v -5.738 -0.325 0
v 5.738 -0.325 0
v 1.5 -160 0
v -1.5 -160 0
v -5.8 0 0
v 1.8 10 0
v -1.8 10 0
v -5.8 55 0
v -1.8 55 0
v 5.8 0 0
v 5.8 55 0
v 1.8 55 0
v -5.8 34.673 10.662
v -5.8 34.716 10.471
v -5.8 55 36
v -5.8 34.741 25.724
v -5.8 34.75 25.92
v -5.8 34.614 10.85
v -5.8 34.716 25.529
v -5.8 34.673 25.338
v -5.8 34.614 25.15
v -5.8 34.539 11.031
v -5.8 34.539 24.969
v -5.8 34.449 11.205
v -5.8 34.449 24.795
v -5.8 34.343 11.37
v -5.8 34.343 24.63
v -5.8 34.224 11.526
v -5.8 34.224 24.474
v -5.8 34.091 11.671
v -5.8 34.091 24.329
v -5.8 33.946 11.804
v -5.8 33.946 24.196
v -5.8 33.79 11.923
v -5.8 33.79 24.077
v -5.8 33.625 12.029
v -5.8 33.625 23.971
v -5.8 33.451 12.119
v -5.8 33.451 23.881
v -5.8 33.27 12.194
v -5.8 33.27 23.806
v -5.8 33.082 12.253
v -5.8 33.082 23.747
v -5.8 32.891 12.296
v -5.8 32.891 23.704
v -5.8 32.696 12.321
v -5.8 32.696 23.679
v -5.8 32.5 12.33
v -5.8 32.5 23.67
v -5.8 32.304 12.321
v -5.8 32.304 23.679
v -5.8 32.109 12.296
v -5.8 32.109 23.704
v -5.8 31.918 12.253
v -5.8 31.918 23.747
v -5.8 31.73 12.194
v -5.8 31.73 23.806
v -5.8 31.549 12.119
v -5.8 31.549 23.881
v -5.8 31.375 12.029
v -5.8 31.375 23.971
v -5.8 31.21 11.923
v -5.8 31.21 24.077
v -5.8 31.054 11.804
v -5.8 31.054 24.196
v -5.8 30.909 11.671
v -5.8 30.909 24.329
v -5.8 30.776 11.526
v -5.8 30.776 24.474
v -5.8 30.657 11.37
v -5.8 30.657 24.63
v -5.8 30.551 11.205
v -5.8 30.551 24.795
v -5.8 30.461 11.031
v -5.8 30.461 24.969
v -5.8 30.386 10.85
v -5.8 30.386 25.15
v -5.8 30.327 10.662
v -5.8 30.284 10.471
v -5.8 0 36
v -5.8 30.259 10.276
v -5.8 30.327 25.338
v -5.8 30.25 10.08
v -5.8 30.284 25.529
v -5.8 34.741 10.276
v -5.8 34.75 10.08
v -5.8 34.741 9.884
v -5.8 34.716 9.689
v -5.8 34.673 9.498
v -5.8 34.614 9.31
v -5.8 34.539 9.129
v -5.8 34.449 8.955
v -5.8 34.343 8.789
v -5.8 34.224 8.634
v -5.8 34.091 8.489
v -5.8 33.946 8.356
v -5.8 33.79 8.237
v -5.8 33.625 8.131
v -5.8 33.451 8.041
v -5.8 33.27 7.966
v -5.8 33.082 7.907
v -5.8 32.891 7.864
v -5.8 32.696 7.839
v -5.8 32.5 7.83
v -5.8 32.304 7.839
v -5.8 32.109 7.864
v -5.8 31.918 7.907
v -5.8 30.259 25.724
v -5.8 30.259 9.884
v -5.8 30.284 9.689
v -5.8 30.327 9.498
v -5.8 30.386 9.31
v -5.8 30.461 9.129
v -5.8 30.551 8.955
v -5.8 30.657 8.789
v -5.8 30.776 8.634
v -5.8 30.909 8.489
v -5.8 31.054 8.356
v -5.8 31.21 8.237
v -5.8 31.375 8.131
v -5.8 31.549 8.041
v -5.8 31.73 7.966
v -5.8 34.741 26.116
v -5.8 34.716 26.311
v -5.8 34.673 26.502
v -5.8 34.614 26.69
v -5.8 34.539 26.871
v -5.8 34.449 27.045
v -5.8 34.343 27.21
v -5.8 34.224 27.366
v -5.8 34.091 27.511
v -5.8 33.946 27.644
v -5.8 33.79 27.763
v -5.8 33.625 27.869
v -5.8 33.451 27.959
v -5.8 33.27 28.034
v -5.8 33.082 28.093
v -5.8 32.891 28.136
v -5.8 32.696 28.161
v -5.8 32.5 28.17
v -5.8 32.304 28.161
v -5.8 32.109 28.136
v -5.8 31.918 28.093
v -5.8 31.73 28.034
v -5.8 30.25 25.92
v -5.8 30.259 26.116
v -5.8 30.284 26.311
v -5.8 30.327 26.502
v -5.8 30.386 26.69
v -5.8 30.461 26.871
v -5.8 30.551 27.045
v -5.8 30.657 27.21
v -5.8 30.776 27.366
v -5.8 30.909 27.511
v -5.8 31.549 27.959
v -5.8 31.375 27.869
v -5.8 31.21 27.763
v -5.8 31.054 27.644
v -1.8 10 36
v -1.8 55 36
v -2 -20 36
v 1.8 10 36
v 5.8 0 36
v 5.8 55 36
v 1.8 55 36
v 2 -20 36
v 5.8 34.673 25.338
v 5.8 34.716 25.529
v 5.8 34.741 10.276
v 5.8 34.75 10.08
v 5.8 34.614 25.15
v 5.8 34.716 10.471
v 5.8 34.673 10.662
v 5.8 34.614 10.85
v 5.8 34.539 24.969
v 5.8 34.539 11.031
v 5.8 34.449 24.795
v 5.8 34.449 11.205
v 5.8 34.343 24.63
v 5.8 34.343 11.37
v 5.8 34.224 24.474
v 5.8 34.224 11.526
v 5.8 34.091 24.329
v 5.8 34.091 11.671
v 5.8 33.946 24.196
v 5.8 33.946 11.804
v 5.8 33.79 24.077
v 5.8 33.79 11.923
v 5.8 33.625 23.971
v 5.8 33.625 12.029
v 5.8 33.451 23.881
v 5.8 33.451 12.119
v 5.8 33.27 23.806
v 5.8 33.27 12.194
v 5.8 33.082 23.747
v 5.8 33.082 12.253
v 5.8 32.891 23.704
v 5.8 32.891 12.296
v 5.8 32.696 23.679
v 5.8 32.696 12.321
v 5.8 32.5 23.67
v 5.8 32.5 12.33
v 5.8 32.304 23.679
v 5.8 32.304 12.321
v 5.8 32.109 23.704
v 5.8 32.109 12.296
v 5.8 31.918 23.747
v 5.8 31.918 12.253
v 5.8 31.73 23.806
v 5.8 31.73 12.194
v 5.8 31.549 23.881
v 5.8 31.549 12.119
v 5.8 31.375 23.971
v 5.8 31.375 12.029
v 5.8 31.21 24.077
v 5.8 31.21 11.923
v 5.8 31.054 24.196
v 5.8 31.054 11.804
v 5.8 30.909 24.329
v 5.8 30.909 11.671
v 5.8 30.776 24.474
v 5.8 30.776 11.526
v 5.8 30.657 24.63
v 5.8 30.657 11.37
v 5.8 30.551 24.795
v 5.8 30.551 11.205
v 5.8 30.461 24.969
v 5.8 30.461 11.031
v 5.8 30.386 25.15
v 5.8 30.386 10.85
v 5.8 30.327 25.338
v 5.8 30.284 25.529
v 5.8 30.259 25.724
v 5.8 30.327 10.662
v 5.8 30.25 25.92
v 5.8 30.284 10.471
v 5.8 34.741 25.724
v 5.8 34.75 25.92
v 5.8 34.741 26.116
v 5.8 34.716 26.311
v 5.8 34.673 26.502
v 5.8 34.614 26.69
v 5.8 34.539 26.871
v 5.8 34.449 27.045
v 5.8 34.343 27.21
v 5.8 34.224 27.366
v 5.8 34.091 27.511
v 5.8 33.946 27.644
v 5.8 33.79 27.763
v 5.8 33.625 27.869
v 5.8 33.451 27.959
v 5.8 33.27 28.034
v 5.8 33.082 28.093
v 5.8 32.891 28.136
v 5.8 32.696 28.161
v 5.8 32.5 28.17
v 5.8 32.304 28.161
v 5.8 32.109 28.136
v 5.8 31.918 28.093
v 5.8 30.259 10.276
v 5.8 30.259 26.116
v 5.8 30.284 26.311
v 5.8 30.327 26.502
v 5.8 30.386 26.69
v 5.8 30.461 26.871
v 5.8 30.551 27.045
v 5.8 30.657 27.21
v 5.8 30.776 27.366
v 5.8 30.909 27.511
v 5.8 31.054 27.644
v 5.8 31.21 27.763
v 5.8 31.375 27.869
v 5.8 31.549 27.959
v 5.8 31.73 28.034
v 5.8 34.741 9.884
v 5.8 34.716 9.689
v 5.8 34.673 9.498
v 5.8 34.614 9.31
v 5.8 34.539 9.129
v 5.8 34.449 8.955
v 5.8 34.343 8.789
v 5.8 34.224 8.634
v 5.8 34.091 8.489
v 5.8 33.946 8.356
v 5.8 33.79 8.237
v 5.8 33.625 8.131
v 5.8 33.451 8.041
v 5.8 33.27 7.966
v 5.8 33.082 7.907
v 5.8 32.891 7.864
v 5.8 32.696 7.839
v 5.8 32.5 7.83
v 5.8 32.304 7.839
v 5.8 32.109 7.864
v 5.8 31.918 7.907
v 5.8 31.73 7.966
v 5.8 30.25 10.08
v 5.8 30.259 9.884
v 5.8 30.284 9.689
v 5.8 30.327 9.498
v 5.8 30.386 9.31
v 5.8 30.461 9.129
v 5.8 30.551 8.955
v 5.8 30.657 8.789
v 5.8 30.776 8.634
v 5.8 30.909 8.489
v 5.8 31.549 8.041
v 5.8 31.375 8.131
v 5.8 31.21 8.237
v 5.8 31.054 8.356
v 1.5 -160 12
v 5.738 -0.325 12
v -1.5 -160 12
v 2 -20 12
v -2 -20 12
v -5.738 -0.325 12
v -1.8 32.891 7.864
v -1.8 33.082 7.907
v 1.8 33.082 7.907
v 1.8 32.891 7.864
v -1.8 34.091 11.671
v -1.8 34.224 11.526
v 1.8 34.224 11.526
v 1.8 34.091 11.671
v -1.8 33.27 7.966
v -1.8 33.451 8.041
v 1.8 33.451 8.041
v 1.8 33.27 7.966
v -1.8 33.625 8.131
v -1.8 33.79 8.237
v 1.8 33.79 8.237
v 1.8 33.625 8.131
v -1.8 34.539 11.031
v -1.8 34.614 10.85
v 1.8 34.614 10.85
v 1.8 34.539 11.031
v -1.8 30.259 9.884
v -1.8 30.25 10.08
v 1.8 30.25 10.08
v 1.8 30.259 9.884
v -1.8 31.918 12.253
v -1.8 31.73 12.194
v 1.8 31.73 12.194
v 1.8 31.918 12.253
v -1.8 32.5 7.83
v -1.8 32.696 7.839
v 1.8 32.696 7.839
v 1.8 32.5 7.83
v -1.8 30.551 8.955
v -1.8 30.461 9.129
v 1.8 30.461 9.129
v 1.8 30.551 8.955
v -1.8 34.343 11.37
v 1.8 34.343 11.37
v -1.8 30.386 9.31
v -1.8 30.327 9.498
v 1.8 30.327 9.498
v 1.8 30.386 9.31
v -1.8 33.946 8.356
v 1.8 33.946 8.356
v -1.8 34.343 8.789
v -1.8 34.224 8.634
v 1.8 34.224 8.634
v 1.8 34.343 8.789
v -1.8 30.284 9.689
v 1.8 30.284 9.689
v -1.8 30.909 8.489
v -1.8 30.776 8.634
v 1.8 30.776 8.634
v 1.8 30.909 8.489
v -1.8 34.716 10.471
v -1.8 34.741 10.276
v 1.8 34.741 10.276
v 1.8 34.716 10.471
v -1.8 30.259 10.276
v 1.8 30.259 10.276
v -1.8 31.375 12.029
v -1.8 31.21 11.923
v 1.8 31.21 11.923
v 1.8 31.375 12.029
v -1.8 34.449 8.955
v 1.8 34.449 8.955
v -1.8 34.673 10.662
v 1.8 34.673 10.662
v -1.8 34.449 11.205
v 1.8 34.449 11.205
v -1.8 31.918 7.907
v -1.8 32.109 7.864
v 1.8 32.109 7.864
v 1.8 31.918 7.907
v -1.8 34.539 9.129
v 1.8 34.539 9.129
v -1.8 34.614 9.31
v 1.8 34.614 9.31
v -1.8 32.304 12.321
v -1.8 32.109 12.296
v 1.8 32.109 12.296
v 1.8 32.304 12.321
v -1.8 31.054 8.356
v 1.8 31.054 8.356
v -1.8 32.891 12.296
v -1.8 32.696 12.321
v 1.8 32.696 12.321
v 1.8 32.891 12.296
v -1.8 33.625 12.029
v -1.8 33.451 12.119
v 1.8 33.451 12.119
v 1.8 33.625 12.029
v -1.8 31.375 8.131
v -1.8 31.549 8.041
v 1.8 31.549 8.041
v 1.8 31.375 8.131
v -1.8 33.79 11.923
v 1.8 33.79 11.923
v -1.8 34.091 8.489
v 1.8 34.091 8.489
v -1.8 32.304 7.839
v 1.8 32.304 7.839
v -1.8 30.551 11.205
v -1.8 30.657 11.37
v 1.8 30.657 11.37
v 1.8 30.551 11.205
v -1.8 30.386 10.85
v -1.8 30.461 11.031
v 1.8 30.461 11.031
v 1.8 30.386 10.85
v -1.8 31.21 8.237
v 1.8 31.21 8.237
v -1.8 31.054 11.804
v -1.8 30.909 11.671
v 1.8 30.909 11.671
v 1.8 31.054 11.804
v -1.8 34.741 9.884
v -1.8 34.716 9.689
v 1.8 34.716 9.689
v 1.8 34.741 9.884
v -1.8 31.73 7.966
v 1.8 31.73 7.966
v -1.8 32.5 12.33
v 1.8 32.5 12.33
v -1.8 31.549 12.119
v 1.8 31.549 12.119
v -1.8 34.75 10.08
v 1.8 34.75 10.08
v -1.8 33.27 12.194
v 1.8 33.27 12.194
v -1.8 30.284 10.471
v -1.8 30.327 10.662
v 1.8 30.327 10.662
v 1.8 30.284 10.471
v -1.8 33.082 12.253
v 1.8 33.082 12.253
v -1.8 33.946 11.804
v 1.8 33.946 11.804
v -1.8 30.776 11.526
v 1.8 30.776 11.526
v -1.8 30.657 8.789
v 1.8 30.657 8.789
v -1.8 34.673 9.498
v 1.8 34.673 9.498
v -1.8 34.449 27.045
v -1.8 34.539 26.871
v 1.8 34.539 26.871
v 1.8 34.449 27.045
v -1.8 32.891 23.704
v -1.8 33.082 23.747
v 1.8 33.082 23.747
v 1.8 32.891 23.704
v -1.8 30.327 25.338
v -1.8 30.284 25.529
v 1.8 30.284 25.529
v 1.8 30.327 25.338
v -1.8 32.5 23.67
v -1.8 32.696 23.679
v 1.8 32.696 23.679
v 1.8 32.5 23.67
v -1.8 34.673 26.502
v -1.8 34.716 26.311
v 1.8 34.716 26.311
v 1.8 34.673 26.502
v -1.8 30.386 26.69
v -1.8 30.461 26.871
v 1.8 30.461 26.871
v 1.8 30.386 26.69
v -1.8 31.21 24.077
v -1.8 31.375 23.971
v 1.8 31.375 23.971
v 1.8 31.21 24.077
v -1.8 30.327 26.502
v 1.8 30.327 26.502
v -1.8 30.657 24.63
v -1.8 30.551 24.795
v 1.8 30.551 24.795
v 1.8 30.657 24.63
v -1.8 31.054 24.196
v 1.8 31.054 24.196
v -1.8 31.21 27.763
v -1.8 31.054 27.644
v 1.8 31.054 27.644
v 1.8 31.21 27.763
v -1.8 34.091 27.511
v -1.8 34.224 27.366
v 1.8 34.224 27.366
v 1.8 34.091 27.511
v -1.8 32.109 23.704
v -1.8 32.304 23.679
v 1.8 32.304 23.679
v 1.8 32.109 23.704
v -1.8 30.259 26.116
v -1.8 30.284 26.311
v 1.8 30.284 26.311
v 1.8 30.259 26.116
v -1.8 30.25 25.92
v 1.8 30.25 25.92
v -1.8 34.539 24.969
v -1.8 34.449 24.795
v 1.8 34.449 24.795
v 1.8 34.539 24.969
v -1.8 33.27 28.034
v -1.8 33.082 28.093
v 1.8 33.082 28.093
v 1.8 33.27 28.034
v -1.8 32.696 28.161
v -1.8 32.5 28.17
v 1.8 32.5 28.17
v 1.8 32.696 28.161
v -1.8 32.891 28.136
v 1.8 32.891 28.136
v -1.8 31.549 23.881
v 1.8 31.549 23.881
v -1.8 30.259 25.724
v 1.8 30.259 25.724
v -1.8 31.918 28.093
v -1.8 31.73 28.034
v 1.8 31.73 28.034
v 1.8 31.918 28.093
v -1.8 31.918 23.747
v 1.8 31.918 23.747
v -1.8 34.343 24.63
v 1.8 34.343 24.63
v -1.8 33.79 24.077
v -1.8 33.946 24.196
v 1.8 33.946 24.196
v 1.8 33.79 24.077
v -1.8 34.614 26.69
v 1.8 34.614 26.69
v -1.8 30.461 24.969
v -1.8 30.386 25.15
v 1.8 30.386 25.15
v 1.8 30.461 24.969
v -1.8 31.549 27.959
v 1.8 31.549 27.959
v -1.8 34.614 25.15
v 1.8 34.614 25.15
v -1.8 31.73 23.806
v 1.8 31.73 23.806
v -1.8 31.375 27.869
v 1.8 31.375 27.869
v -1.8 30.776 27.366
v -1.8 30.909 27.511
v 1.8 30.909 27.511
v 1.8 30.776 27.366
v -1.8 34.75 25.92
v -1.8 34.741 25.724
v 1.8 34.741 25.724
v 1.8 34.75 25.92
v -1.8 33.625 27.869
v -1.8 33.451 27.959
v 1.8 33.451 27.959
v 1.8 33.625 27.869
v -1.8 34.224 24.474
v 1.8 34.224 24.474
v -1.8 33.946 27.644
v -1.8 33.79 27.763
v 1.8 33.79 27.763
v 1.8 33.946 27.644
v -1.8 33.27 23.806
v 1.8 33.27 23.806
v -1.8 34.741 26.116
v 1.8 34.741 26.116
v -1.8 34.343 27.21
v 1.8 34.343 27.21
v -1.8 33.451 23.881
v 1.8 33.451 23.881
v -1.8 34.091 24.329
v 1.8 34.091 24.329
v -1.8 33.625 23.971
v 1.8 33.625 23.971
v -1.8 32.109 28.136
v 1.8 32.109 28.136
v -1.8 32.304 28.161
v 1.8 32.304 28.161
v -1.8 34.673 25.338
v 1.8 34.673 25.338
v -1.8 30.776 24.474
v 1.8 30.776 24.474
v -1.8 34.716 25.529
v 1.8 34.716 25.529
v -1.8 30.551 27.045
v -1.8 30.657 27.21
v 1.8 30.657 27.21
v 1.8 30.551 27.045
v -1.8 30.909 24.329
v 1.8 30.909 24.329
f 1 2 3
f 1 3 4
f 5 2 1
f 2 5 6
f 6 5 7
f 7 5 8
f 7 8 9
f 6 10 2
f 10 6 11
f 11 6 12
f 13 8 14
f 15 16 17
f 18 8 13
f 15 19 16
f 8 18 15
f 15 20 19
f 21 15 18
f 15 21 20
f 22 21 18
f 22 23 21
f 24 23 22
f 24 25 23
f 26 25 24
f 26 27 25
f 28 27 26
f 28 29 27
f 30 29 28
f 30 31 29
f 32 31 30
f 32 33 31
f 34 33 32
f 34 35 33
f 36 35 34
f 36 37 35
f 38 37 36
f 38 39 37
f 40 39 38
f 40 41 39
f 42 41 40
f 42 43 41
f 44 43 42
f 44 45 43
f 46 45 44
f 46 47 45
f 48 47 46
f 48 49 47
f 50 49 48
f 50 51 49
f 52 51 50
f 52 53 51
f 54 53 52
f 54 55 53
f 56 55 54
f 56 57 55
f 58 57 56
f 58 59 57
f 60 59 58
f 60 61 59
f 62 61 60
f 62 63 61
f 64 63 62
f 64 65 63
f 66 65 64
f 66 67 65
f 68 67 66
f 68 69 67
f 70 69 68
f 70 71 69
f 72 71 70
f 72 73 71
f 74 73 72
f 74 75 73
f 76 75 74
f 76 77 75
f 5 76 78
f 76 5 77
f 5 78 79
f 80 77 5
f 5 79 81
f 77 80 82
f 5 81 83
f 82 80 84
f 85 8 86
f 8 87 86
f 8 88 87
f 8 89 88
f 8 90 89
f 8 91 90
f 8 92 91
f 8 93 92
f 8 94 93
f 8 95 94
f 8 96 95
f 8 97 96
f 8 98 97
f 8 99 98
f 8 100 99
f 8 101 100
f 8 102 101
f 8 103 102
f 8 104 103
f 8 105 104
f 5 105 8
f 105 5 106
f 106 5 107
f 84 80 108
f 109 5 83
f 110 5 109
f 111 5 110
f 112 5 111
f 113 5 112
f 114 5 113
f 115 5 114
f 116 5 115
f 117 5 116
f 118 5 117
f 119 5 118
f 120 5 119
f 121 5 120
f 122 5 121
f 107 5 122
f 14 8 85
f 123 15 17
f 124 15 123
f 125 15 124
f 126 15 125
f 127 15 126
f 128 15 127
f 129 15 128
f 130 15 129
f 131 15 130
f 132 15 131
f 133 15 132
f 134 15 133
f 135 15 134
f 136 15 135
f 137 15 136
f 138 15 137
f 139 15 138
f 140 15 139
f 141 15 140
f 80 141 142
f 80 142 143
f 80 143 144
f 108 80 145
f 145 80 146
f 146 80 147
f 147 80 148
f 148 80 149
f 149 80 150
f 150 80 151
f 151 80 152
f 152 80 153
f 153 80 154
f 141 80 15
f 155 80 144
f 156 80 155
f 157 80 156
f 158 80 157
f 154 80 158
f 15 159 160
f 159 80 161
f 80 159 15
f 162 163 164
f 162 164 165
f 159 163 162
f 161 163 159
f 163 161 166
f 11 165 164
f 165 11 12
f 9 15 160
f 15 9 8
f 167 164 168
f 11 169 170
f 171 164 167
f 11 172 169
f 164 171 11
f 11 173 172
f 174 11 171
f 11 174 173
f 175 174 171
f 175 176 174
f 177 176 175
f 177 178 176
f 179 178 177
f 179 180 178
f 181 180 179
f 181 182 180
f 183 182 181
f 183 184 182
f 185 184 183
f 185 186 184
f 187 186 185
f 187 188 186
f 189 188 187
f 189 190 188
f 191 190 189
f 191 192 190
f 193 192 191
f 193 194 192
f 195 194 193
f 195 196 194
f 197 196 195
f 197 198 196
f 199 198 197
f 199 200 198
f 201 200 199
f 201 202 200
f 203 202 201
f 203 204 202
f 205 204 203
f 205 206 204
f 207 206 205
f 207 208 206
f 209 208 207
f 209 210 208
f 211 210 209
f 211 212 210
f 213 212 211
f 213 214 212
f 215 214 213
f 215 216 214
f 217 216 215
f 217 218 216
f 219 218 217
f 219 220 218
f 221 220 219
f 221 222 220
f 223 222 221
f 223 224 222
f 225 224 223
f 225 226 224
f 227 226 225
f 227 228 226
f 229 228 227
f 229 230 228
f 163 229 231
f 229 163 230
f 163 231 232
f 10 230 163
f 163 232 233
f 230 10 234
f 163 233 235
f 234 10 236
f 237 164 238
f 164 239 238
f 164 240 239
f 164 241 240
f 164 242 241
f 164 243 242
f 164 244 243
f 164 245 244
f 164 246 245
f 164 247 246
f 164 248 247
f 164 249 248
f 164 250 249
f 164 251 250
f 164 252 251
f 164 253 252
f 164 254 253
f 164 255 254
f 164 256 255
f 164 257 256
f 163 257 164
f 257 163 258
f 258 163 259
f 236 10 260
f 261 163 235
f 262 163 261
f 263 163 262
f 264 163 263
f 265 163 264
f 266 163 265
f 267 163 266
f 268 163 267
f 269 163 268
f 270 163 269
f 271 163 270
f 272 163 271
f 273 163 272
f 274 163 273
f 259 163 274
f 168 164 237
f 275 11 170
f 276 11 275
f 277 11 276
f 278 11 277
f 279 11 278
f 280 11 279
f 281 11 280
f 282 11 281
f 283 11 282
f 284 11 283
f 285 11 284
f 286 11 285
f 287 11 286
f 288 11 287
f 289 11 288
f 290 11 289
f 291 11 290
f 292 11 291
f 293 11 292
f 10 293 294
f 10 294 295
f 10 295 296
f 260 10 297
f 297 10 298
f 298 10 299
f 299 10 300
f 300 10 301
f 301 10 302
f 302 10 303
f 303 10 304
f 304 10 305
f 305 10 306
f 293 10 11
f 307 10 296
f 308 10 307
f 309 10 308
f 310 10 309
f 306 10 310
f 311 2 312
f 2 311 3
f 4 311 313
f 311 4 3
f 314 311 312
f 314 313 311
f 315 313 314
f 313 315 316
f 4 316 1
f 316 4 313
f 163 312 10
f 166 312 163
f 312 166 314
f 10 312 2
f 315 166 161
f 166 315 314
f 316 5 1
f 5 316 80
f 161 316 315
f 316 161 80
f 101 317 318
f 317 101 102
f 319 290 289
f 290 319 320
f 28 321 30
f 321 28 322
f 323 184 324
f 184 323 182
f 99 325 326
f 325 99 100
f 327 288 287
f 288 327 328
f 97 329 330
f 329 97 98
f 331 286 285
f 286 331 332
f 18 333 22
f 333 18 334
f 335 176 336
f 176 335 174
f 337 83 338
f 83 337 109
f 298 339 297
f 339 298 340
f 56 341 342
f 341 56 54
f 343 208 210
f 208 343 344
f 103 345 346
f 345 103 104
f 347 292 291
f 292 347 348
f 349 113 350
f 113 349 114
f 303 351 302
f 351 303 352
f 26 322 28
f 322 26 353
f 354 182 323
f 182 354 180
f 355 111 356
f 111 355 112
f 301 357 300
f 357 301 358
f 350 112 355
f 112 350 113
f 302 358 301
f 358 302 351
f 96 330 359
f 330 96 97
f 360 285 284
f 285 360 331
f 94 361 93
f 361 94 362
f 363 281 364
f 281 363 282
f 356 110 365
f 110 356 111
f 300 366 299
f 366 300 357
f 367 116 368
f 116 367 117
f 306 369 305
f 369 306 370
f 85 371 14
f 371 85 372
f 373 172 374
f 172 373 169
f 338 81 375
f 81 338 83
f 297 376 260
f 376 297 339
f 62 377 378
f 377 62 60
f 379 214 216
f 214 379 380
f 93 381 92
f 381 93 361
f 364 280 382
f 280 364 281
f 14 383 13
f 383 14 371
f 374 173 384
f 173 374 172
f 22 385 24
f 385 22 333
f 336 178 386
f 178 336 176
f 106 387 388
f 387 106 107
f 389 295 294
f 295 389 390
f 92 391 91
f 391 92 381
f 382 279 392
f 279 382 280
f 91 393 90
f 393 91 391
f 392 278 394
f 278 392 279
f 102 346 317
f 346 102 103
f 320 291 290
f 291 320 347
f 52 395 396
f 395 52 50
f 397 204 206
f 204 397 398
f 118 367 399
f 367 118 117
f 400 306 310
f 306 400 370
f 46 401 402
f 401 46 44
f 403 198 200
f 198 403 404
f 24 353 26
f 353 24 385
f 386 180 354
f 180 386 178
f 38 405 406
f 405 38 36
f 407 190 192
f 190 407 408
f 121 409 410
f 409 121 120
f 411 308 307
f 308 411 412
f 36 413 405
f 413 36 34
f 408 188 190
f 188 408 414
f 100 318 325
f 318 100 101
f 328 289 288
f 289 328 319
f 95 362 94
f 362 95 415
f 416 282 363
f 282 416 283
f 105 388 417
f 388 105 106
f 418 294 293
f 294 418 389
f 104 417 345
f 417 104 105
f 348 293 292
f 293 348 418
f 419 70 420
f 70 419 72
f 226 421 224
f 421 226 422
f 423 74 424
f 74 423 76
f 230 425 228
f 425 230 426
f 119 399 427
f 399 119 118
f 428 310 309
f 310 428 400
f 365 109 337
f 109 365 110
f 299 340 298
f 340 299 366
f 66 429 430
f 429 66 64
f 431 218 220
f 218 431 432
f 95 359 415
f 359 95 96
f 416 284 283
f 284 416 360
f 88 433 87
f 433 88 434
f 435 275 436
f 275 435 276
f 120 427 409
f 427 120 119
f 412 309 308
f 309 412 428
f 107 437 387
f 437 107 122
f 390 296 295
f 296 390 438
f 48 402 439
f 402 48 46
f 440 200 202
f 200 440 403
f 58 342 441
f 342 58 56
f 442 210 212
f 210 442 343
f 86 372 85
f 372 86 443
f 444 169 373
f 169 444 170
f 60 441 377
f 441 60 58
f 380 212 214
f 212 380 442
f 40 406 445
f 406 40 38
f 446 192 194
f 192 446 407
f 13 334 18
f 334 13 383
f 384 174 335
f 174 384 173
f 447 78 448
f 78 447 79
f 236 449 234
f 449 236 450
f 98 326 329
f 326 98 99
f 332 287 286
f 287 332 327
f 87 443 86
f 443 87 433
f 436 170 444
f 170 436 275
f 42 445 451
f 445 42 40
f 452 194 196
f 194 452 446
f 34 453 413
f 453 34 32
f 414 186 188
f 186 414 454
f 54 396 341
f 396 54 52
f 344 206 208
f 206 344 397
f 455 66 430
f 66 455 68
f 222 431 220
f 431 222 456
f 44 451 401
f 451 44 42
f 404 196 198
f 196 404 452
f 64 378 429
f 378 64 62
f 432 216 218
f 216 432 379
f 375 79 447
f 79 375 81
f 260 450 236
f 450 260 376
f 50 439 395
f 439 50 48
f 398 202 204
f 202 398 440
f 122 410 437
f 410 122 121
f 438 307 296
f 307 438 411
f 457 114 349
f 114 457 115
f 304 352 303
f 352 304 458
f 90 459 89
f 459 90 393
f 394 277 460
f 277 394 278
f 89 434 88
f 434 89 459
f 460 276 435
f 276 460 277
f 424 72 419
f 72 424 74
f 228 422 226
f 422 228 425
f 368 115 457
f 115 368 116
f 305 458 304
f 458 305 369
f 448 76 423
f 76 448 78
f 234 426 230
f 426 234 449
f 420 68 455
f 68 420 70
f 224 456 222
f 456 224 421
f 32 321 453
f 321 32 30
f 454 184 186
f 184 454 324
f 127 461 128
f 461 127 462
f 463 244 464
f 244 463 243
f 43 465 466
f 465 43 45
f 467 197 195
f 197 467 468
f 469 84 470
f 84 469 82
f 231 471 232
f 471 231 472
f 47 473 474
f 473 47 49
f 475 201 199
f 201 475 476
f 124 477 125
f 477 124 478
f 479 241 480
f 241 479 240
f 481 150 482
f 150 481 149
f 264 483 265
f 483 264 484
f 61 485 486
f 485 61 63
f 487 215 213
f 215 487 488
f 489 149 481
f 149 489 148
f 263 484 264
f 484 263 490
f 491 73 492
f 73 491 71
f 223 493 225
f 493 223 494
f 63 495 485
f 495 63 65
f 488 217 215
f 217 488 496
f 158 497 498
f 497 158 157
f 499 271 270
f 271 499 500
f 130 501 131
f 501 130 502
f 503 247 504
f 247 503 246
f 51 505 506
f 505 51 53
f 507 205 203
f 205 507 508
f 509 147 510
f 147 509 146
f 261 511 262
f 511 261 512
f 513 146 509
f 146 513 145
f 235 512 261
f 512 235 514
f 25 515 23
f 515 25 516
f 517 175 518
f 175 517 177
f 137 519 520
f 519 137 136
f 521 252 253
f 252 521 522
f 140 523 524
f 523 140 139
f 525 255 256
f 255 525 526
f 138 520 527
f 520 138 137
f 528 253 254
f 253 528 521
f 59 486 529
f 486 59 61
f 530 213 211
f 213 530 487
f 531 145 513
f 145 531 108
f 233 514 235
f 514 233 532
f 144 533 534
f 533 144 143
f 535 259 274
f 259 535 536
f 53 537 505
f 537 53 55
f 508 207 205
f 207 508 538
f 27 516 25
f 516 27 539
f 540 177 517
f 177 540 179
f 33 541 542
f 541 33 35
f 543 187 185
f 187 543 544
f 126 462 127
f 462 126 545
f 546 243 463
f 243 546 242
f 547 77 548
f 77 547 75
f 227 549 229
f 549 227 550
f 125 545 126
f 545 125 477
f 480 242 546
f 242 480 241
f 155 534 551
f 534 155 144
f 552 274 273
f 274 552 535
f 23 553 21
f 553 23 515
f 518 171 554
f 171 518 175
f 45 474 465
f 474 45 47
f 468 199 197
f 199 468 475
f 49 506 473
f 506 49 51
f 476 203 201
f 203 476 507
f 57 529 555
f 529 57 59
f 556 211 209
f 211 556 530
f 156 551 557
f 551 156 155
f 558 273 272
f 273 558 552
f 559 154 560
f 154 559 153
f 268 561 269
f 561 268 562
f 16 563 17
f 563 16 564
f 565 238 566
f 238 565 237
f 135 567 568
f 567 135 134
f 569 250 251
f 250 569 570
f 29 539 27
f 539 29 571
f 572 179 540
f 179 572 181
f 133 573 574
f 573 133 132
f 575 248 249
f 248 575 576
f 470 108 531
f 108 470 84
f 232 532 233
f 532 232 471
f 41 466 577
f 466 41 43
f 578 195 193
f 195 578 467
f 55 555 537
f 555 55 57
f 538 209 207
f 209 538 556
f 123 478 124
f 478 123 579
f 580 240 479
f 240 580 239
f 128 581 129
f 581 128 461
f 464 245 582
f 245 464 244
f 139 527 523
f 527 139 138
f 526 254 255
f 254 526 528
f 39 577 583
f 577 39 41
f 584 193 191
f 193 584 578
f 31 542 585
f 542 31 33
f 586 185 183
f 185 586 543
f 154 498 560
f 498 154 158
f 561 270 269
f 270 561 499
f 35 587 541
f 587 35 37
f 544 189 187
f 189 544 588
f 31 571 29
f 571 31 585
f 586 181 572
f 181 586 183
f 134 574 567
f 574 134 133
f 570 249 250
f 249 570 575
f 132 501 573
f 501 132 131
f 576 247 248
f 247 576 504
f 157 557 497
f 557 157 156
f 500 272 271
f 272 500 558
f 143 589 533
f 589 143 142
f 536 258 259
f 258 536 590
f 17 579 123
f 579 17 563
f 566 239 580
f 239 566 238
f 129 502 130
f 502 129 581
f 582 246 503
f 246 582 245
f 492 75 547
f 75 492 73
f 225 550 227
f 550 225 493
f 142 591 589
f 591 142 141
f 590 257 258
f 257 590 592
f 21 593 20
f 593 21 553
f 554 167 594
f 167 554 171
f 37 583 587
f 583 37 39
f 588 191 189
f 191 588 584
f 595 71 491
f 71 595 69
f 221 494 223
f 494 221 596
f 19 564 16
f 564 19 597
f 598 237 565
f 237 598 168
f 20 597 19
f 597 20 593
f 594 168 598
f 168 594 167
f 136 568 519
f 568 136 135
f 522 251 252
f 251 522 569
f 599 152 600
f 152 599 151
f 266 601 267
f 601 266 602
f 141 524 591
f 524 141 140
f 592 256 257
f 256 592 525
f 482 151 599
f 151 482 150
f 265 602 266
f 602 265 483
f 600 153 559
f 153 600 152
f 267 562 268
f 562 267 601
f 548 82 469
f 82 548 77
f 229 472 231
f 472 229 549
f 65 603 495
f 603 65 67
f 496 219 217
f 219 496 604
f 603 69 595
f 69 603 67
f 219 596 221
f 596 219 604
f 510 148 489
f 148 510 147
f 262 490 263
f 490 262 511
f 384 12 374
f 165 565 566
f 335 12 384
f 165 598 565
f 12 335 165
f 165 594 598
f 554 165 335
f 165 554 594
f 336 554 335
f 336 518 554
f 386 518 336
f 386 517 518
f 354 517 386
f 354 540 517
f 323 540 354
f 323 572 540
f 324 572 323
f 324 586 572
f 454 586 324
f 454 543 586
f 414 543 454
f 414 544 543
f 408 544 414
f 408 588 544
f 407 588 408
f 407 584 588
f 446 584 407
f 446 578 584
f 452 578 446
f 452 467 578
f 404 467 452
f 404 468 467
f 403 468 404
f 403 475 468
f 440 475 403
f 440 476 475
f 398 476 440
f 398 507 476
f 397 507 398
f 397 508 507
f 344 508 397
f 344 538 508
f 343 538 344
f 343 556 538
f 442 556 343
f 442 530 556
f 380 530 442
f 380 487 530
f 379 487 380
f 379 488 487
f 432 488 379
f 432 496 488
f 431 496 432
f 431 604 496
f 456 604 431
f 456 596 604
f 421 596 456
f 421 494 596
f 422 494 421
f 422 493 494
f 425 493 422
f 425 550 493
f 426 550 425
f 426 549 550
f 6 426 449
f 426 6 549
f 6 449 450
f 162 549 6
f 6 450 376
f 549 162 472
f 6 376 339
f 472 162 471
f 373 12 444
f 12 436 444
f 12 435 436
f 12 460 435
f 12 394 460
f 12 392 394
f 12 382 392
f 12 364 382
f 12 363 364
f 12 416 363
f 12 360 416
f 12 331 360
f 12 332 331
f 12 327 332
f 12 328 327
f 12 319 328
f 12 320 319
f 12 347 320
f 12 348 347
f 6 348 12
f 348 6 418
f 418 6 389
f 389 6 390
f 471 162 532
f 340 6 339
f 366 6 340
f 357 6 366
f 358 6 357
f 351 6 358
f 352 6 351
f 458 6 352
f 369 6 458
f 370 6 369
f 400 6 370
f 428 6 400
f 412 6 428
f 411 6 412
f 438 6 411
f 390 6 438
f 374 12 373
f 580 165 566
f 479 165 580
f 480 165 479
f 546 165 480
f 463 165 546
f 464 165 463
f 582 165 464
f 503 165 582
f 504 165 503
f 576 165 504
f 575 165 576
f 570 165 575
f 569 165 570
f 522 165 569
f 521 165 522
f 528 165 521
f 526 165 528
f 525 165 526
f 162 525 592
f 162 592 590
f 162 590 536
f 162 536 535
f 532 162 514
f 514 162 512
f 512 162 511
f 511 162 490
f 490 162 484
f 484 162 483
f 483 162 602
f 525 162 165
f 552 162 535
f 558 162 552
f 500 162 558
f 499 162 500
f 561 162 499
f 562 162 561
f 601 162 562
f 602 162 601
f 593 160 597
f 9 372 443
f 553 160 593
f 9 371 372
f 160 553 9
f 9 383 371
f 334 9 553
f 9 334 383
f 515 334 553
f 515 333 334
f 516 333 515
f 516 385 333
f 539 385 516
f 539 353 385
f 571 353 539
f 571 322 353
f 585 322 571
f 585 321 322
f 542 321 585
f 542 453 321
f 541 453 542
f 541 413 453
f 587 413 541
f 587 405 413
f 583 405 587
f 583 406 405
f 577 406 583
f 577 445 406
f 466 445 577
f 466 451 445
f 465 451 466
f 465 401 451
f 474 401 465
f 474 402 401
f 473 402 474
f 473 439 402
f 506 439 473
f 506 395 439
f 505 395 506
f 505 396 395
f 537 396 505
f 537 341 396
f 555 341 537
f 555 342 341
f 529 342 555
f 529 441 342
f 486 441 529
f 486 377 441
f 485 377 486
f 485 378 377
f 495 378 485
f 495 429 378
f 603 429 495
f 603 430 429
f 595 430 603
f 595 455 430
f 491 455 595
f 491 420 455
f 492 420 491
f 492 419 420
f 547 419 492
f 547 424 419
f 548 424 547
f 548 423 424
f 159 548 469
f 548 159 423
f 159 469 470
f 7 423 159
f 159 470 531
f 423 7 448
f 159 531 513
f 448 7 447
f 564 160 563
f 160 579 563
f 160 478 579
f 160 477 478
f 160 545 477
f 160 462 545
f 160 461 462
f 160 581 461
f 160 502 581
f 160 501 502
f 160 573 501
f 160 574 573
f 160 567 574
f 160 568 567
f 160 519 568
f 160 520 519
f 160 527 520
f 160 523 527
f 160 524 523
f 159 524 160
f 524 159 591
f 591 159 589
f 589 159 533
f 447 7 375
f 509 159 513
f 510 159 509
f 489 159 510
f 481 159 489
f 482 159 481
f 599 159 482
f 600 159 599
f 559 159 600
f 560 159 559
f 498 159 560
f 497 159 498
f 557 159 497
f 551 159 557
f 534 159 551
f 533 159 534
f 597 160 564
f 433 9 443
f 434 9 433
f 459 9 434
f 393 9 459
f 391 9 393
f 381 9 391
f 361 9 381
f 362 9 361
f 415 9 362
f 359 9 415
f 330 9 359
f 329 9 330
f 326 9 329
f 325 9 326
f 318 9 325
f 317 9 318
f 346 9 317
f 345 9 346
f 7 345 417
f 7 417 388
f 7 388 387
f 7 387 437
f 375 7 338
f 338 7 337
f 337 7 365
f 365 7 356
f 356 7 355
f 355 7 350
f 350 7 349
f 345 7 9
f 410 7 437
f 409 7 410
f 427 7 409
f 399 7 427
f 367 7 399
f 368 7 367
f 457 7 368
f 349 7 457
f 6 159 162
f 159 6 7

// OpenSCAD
// file: lib.scad
// Shared pieces for the Winterlight PETG parts (Bambu Lab A1, 256 × 256 × 256 mm).
// Millimetres. Measure your own mounting strip and set strip_w / strip_t on the
// command line (-D strip_w=20) or in OpenSCAD's Customizer before printing.
$fn = 72;
strip_w = 30;   // pixel mounting strip width
strip_t = 1.54; // pixel mounting strip thickness (measured)
clr = 0.4;      // clearance per side, a snug slide fit in PETG
wall = 3;       // channel walls
tie_d = 4.5;    // holes for the 2.5 mm cable ties or an M4 bolt

// Closed slots the strip slides through (the ground strip's posts).
slot_t = strip_t + 2*clr;
slot_w = strip_w + 2*clr;
// Open pockets the strip ends sit in (mini trees, tree hub and ring): a close
// fit across, and a little shallower than the strip, so the strip stands
// proud of the face and the cable tie clamps it down.
proud = 0.3;
pocket_t = strip_t - proud;
pocket_w = strip_w + 2*0.2;
// Outside size of a strip channel: radial depth and tangential width.
ch_depth = pocket_t + wall;
ch_width = pocket_w + 2*wall;

// A channel that holds a strip's end: the strip runs up +Z with its face
// (and its pixels) towards +X. Open on the +X side so the strip drops in,
// with a groove round the outside where a cable tie pulls it home.
module channel(h, floor = 3) {
  z0 = h*0.55;
  difference() {
    translate([-ch_depth, -ch_width/2, 0]) cube([ch_depth, ch_width, h]);
    translate([-pocket_t, -pocket_w/2, floor]) cube([pocket_t + 1, pocket_w, h]);
    // Tie groove, 1 mm deep, round the back and both sides.
    difference() {
      translate([-ch_depth - 1, -ch_width/2 - 1, z0]) cube([ch_depth + 2, ch_width + 2, 5]);
      translate([-ch_depth + 1, -ch_width/2 + 1, z0 - 1]) cube([ch_depth + 2, ch_width - 2, 7]);
    }
  }
}

// n channels on a circle of radius r (the strip's face), leaning by tilt
// degrees: positive leans the top inwards, negative outwards.
module channel_ring(n, r, tilt, h, start = 0) {
  intersection() {
    for (i = [0 : n - 1]) rotate([0, 0, start + 360*i/n])
      translate([r, 0, 0]) rotate([0, -tilt, 0]) channel(h);
    translate([-1000, -1000, 0]) cube([2000, 2000, 1000]);
  }
}

// A flat ring with spokes to a centre boss: the plate that ties the channels together.
module spoked_ring(r_out, r_in, t, n, boss_d, arm_w = 8) {
  difference() { cylinder(r = r_out, h = t); translate([0, 0, -1]) cylinder(r = r_in, h = t + 2); }
  for (i = [0 : n - 1]) rotate([0, 0, 360*i/n + 180/n]) translate([0, -arm_w/2, 0]) cube([r_in + 1, arm_w, t]);
  cylinder(d = boss_d, h = t);
}

// Bricks for ballast: the paving in front of the house is stone, so nothing
// can be staked into it. The feet are trays that hold standard concrete paving
// bricks (betonklinkers, 22 × 11 × 8 cm, about 4 kg each). Set your own size.
brick_l = 220;
brick_w = 110;
brick_h = 80;
brick_clr = 3;      // bricks vary a few millimetres
tray_wall = 1.6;
tray_h = 20;
tray_lip = 10;      // the floor is only a ledge round the edge, to save PETG
tray_floor = 1.6;

// A tray for n bricks side by side along Y, its corner at the origin.
// gap: extra room between the bricks (for a rib); returns nothing, see tray_size.
function tray_inner(n = 1, gap = 0) = [brick_l + 2*brick_clr, n*(brick_w + 2*brick_clr) + gap];
module tray(n = 1, gap = 0) {
  in = tray_inner(n, gap);
  out = [in[0] + 2*tray_wall, in[1] + 2*tray_wall];
  difference() {
    cube([out[0], out[1], tray_h]);
    translate([tray_wall, tray_wall, tray_floor]) cube([in[0], in[1], tray_h]);
    translate([tray_wall + tray_lip, tray_wall + tray_lip, -1]) cube([in[0] - 2*tray_lip, in[1] - 2*tray_lip, tray_floor + 2]);
  }
}
// main file
// Candy cane stake: one per cane. The bottom of the cane's coro stem drops
// into the slot; drill the coro through the two holes and tie it. Printed
// lying on its side, no supports. Print Y = up in use.
include <lib.scad>
coro_t = 3;
slot = coro_t + 0.6;
width = 36;        // along the cane's stem (the stem band is 50 mm wide)
spike = 160;
head_h = 55;
slot_depth = 45;
head_w = slot + 2*4;
spike_t = 12;

difference() {
  union() {
    linear_extrude(width) translate([-head_w/2, 0]) square([head_w, head_h]);
    linear_extrude(spike_t) polygon([[-head_w/2, 2], [head_w/2, 2], [1.5, -spike], [-1.5, -spike]]);
    linear_extrude(width) polygon([[-head_w/2, 0], [head_w/2, 0], [2, -20], [-2, -20]]);
  }
  translate([-slot/2, head_h - slot_depth, -1]) cube([slot, slot_depth + 1, width + 2]);
  for (z = [width*0.28, width*0.72]) translate([0, head_h - slot_depth/2, z]) rotate([0, 90, 0]) cylinder(d = tie_d, h = head_w + 2, center = true);
}
